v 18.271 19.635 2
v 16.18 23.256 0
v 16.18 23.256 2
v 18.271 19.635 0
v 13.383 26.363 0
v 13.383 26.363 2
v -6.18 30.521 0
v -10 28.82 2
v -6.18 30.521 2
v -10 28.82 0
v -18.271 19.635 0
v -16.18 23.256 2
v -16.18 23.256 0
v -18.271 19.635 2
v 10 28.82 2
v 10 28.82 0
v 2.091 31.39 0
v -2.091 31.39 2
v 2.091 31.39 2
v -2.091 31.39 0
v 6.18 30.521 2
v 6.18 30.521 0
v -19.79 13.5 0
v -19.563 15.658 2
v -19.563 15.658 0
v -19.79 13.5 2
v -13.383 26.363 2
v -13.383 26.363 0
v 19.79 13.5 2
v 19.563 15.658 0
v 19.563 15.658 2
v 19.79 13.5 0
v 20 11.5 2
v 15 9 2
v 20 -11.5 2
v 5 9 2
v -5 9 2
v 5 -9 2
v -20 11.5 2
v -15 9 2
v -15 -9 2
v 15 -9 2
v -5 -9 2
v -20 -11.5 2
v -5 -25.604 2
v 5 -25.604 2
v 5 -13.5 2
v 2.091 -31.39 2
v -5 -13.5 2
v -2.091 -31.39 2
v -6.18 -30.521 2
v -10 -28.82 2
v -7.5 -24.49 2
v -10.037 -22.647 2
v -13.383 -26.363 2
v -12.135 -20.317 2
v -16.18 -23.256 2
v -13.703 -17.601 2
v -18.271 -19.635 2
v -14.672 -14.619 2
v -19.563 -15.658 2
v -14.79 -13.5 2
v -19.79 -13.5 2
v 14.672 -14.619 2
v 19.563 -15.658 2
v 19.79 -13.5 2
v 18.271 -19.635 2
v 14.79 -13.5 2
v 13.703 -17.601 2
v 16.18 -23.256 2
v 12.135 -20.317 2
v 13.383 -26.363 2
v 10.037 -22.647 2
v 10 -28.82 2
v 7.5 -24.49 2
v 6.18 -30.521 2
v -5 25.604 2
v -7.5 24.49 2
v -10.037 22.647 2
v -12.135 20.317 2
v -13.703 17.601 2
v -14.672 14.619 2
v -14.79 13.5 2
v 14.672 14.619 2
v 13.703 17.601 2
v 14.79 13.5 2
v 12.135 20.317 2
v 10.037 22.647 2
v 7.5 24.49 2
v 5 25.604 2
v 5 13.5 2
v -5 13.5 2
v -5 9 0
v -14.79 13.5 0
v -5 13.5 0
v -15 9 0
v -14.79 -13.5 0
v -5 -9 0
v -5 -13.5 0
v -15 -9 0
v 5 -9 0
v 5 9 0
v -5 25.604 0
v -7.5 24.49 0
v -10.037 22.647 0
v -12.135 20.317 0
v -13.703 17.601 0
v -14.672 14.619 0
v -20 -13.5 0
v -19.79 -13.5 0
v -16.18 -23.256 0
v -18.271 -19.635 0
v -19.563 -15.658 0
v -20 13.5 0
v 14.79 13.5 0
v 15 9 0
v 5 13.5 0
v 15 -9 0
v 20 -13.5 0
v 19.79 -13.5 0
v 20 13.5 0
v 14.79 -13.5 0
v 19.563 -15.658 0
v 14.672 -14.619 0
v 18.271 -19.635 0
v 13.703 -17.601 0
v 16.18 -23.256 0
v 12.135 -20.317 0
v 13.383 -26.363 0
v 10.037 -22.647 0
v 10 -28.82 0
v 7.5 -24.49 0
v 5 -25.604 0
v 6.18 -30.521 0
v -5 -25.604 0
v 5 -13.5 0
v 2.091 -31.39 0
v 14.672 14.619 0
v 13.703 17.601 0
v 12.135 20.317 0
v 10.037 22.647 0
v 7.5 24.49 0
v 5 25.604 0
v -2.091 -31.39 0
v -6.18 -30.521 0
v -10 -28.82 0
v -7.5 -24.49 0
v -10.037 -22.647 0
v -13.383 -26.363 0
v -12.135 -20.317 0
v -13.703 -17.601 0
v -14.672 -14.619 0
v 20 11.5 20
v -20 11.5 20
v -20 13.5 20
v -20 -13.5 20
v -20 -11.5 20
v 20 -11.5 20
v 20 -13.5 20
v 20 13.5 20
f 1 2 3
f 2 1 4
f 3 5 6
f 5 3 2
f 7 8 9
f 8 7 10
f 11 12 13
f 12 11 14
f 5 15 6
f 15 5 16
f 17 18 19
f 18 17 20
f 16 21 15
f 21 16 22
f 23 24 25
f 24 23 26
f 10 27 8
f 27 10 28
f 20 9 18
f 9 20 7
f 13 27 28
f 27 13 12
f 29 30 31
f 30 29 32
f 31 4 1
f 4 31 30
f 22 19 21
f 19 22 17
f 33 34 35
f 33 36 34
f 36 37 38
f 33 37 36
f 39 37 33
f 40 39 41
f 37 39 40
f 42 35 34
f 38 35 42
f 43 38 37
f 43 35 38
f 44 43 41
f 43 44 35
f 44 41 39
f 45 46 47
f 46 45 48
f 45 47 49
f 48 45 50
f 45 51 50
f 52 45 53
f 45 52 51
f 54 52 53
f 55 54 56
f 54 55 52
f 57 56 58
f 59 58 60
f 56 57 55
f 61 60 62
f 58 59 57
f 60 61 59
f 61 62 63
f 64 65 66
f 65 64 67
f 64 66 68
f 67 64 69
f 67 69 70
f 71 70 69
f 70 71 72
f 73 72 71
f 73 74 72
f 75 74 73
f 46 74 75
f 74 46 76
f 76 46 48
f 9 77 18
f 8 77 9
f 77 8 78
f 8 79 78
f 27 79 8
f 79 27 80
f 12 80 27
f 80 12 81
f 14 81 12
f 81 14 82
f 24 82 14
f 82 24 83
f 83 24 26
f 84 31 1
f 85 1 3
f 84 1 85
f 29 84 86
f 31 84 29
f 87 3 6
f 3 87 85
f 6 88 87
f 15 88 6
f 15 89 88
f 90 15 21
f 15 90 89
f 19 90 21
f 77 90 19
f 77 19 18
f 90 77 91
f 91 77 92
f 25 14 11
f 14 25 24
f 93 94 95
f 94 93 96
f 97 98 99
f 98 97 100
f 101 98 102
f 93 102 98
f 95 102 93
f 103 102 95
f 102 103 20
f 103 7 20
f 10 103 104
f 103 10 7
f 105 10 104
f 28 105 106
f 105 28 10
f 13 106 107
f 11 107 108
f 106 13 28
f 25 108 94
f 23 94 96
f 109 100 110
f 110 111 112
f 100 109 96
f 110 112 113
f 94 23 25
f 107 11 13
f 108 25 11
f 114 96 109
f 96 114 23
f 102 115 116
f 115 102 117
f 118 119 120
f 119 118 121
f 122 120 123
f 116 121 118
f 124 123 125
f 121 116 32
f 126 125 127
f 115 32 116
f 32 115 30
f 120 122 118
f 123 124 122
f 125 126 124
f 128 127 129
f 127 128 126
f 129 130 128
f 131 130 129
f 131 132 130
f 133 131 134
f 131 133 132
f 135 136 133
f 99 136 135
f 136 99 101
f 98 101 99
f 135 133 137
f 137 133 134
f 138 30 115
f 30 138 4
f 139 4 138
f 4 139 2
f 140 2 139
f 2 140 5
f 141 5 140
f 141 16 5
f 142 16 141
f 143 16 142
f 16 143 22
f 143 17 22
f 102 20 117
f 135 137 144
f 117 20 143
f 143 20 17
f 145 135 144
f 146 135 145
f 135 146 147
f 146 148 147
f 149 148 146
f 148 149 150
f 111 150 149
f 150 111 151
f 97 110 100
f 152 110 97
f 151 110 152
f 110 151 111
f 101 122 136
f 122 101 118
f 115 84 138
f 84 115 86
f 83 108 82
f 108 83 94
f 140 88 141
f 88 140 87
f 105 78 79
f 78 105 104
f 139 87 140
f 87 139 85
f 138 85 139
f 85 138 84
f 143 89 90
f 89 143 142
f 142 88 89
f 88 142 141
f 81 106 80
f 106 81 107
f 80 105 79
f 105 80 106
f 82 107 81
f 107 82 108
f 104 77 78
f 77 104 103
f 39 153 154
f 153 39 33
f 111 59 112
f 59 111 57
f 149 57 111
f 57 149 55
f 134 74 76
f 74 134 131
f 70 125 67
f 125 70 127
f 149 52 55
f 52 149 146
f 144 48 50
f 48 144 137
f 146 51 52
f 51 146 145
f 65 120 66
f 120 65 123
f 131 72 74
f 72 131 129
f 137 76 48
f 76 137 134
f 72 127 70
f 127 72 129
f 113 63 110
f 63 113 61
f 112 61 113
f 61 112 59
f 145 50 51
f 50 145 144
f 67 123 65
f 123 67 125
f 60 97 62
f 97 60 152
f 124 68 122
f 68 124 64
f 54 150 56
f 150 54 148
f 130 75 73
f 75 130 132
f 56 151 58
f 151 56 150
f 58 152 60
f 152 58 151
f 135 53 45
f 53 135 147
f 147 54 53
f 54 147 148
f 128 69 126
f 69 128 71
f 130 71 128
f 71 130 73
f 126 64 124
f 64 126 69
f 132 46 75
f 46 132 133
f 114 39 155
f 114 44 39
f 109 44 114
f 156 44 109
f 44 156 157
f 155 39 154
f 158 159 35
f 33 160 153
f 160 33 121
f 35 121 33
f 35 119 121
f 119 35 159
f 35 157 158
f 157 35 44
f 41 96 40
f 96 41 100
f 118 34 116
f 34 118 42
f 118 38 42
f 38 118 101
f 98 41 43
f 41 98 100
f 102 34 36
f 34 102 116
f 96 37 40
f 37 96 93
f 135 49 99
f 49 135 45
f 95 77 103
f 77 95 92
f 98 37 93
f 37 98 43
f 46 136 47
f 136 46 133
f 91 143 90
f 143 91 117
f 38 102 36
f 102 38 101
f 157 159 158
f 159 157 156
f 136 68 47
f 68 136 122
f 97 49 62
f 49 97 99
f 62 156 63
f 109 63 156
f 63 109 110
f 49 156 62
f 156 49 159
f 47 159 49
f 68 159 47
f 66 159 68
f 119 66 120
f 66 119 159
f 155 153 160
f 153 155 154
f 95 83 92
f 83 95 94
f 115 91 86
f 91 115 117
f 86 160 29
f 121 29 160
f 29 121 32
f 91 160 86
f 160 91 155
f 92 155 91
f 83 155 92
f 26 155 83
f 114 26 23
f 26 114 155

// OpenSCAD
/*
The MIT License (MIT)

Copyright (c) 2020 Shinichi Ohki.

Permission is hereby granted, free of charge, to any person obtaining a copy
of this software and associated documentation files (the "Software"), to deal
in the Software without restriction, including without limitation the rights
to use, copy, modify, merge, publish, distribute, sublicense, and/or sell
copies of the Software, and to permit persons to whom the Software is
furnished to do so, subject to the following conditions:

The above copyright notice and this permission notice shall be included in
all copies or substantial portions of the Software.

THE SOFTWARE IS PROVIDED "AS IS", WITHOUT WARRANTY OF ANY KIND, EXPRESS OR
IMPLIED, INCLUDING BUT NOT LIMITED TO THE WARRANTIES OF MERCHANTABILITY,
FITNESS FOR A PARTICULAR PURPOSE AND NONINFRINGEMENT. IN NO EVENT SHALL THE
AUTHORS OR COPYRIGHT HOLDERS BE LIABLE FOR ANY CLAIM, DAMAGES OR OTHER
LIABILITY, WHETHER IN AN ACTION OF CONTRACT, TORT OR OTHERWISE, ARISING FROM,
OUT OF OR IN CONNECTION WITH THE SOFTWARE OR THE USE OR OTHER DEALINGS IN
THE SOFTWARE.
*/


wall_height = 20;

module half_circle() {
  difference() {
    cylinder(h = 2, r=20);
    translate([0, 0, -0.001]) {
      cylinder(h = 2.002, r=15);
    }
    translate([-20, -20, -0.001]) {
      cube(size = [40,20,2.002], center = false);
    }
  }
}

translate ([0, 11.5, 0]) {
  half_circle();
}

translate ([0, -11.5, 0]) {
  rotate([0,0,180]) {
    half_circle();
  }
}

translate ([0, 0, 1]) {
  cube(size = [10,60,2], center = true);
  difference() {
    cube(size = [40,23,2], center = true);
    cube(size = [30,18,2.002], center = true);
  }
}

translate ([-20, -13.5, 0]) {
  cube(size = [40,2,wall_height], center = false);
}
translate ([-20, 11.5, 0]) {
  cube(size = [40,2,wall_height], center = false);
}
